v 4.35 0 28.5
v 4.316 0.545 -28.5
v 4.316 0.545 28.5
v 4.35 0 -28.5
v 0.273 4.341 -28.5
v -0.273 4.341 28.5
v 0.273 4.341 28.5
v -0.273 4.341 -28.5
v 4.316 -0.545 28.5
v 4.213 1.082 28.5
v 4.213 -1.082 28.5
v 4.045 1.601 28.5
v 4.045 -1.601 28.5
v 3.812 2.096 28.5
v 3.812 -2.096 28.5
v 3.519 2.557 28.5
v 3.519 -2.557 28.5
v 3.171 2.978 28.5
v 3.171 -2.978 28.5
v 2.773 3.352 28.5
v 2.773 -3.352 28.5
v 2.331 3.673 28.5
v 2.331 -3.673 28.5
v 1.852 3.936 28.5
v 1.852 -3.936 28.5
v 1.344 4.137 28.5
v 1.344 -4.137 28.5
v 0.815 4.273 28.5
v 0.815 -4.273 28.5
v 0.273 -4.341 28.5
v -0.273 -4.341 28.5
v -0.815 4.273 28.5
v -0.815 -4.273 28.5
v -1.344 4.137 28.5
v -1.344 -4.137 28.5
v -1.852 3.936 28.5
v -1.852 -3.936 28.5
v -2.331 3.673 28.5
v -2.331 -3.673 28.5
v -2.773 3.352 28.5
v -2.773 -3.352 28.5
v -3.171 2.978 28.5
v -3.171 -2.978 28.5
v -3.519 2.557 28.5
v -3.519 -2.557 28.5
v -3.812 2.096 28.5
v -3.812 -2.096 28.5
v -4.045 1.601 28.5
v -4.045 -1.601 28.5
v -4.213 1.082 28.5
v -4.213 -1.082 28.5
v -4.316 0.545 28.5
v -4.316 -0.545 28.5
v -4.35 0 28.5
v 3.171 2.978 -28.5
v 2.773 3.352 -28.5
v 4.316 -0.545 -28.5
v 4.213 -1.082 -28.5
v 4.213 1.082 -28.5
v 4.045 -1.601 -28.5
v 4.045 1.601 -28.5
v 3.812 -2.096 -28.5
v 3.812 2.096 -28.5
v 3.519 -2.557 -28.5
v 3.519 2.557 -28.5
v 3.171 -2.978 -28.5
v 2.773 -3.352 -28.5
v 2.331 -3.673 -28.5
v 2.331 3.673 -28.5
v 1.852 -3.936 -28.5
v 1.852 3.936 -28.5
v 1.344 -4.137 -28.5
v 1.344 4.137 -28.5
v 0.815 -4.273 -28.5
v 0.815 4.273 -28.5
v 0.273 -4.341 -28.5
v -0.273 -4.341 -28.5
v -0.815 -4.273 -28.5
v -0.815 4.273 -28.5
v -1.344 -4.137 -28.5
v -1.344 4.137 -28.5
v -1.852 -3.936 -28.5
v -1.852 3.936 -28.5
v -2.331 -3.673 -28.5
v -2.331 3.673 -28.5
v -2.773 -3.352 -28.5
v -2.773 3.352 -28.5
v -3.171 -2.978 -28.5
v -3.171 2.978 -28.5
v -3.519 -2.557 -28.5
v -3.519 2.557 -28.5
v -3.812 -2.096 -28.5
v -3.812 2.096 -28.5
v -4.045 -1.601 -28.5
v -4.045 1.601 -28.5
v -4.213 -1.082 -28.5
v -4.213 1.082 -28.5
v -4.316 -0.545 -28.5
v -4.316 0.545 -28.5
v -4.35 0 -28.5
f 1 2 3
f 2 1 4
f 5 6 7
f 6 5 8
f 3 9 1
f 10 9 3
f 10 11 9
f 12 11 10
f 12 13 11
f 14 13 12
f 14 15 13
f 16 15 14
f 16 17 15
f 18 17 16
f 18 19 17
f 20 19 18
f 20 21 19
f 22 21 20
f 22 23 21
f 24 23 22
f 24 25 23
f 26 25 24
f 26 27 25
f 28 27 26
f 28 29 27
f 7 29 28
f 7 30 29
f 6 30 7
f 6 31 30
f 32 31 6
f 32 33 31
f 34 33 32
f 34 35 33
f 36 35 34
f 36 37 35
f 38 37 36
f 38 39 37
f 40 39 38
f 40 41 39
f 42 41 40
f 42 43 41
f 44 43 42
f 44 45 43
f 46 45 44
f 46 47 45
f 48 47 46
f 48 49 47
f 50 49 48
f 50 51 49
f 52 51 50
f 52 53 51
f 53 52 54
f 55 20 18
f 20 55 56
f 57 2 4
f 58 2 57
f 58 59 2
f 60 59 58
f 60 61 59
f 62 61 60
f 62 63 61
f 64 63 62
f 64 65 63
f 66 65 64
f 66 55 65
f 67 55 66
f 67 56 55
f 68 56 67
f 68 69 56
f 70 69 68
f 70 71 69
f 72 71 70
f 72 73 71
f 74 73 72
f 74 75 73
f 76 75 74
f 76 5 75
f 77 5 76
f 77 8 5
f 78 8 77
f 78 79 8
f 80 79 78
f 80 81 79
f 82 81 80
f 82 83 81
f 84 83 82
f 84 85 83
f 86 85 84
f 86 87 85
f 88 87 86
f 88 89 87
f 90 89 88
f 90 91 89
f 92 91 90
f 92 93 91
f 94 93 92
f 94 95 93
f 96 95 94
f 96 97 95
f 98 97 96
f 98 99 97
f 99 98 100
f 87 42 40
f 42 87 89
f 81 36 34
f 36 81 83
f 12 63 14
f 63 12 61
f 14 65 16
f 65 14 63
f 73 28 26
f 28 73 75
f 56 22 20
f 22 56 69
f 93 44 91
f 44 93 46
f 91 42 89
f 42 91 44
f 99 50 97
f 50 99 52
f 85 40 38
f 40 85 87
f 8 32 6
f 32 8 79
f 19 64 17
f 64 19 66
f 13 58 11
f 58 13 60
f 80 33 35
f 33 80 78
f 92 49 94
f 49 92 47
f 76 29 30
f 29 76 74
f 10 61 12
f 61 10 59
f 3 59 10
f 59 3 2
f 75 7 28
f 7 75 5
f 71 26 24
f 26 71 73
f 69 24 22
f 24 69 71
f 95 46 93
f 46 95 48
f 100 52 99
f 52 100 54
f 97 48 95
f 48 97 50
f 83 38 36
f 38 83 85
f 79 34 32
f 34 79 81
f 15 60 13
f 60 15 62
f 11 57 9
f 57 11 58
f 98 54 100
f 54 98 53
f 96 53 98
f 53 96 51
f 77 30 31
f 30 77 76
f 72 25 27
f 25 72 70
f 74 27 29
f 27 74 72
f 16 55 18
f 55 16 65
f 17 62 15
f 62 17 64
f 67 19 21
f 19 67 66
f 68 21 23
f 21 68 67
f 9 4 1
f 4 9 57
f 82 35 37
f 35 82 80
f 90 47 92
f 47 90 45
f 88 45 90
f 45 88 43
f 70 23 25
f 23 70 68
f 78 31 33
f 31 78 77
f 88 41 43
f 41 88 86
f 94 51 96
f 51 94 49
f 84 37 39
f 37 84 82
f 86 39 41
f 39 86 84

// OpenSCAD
$fn = 50;


difference() {
	union() {
		translate(v = [0, 0, -28.5000000000]) {
			cylinder(h = 57, r = 4.3500000000);
		}
	}
	union() {
		translate(v = [0, 0, -100.0000000000]) {
			cylinder(h = 200, r = 0);
		}
	}
}
